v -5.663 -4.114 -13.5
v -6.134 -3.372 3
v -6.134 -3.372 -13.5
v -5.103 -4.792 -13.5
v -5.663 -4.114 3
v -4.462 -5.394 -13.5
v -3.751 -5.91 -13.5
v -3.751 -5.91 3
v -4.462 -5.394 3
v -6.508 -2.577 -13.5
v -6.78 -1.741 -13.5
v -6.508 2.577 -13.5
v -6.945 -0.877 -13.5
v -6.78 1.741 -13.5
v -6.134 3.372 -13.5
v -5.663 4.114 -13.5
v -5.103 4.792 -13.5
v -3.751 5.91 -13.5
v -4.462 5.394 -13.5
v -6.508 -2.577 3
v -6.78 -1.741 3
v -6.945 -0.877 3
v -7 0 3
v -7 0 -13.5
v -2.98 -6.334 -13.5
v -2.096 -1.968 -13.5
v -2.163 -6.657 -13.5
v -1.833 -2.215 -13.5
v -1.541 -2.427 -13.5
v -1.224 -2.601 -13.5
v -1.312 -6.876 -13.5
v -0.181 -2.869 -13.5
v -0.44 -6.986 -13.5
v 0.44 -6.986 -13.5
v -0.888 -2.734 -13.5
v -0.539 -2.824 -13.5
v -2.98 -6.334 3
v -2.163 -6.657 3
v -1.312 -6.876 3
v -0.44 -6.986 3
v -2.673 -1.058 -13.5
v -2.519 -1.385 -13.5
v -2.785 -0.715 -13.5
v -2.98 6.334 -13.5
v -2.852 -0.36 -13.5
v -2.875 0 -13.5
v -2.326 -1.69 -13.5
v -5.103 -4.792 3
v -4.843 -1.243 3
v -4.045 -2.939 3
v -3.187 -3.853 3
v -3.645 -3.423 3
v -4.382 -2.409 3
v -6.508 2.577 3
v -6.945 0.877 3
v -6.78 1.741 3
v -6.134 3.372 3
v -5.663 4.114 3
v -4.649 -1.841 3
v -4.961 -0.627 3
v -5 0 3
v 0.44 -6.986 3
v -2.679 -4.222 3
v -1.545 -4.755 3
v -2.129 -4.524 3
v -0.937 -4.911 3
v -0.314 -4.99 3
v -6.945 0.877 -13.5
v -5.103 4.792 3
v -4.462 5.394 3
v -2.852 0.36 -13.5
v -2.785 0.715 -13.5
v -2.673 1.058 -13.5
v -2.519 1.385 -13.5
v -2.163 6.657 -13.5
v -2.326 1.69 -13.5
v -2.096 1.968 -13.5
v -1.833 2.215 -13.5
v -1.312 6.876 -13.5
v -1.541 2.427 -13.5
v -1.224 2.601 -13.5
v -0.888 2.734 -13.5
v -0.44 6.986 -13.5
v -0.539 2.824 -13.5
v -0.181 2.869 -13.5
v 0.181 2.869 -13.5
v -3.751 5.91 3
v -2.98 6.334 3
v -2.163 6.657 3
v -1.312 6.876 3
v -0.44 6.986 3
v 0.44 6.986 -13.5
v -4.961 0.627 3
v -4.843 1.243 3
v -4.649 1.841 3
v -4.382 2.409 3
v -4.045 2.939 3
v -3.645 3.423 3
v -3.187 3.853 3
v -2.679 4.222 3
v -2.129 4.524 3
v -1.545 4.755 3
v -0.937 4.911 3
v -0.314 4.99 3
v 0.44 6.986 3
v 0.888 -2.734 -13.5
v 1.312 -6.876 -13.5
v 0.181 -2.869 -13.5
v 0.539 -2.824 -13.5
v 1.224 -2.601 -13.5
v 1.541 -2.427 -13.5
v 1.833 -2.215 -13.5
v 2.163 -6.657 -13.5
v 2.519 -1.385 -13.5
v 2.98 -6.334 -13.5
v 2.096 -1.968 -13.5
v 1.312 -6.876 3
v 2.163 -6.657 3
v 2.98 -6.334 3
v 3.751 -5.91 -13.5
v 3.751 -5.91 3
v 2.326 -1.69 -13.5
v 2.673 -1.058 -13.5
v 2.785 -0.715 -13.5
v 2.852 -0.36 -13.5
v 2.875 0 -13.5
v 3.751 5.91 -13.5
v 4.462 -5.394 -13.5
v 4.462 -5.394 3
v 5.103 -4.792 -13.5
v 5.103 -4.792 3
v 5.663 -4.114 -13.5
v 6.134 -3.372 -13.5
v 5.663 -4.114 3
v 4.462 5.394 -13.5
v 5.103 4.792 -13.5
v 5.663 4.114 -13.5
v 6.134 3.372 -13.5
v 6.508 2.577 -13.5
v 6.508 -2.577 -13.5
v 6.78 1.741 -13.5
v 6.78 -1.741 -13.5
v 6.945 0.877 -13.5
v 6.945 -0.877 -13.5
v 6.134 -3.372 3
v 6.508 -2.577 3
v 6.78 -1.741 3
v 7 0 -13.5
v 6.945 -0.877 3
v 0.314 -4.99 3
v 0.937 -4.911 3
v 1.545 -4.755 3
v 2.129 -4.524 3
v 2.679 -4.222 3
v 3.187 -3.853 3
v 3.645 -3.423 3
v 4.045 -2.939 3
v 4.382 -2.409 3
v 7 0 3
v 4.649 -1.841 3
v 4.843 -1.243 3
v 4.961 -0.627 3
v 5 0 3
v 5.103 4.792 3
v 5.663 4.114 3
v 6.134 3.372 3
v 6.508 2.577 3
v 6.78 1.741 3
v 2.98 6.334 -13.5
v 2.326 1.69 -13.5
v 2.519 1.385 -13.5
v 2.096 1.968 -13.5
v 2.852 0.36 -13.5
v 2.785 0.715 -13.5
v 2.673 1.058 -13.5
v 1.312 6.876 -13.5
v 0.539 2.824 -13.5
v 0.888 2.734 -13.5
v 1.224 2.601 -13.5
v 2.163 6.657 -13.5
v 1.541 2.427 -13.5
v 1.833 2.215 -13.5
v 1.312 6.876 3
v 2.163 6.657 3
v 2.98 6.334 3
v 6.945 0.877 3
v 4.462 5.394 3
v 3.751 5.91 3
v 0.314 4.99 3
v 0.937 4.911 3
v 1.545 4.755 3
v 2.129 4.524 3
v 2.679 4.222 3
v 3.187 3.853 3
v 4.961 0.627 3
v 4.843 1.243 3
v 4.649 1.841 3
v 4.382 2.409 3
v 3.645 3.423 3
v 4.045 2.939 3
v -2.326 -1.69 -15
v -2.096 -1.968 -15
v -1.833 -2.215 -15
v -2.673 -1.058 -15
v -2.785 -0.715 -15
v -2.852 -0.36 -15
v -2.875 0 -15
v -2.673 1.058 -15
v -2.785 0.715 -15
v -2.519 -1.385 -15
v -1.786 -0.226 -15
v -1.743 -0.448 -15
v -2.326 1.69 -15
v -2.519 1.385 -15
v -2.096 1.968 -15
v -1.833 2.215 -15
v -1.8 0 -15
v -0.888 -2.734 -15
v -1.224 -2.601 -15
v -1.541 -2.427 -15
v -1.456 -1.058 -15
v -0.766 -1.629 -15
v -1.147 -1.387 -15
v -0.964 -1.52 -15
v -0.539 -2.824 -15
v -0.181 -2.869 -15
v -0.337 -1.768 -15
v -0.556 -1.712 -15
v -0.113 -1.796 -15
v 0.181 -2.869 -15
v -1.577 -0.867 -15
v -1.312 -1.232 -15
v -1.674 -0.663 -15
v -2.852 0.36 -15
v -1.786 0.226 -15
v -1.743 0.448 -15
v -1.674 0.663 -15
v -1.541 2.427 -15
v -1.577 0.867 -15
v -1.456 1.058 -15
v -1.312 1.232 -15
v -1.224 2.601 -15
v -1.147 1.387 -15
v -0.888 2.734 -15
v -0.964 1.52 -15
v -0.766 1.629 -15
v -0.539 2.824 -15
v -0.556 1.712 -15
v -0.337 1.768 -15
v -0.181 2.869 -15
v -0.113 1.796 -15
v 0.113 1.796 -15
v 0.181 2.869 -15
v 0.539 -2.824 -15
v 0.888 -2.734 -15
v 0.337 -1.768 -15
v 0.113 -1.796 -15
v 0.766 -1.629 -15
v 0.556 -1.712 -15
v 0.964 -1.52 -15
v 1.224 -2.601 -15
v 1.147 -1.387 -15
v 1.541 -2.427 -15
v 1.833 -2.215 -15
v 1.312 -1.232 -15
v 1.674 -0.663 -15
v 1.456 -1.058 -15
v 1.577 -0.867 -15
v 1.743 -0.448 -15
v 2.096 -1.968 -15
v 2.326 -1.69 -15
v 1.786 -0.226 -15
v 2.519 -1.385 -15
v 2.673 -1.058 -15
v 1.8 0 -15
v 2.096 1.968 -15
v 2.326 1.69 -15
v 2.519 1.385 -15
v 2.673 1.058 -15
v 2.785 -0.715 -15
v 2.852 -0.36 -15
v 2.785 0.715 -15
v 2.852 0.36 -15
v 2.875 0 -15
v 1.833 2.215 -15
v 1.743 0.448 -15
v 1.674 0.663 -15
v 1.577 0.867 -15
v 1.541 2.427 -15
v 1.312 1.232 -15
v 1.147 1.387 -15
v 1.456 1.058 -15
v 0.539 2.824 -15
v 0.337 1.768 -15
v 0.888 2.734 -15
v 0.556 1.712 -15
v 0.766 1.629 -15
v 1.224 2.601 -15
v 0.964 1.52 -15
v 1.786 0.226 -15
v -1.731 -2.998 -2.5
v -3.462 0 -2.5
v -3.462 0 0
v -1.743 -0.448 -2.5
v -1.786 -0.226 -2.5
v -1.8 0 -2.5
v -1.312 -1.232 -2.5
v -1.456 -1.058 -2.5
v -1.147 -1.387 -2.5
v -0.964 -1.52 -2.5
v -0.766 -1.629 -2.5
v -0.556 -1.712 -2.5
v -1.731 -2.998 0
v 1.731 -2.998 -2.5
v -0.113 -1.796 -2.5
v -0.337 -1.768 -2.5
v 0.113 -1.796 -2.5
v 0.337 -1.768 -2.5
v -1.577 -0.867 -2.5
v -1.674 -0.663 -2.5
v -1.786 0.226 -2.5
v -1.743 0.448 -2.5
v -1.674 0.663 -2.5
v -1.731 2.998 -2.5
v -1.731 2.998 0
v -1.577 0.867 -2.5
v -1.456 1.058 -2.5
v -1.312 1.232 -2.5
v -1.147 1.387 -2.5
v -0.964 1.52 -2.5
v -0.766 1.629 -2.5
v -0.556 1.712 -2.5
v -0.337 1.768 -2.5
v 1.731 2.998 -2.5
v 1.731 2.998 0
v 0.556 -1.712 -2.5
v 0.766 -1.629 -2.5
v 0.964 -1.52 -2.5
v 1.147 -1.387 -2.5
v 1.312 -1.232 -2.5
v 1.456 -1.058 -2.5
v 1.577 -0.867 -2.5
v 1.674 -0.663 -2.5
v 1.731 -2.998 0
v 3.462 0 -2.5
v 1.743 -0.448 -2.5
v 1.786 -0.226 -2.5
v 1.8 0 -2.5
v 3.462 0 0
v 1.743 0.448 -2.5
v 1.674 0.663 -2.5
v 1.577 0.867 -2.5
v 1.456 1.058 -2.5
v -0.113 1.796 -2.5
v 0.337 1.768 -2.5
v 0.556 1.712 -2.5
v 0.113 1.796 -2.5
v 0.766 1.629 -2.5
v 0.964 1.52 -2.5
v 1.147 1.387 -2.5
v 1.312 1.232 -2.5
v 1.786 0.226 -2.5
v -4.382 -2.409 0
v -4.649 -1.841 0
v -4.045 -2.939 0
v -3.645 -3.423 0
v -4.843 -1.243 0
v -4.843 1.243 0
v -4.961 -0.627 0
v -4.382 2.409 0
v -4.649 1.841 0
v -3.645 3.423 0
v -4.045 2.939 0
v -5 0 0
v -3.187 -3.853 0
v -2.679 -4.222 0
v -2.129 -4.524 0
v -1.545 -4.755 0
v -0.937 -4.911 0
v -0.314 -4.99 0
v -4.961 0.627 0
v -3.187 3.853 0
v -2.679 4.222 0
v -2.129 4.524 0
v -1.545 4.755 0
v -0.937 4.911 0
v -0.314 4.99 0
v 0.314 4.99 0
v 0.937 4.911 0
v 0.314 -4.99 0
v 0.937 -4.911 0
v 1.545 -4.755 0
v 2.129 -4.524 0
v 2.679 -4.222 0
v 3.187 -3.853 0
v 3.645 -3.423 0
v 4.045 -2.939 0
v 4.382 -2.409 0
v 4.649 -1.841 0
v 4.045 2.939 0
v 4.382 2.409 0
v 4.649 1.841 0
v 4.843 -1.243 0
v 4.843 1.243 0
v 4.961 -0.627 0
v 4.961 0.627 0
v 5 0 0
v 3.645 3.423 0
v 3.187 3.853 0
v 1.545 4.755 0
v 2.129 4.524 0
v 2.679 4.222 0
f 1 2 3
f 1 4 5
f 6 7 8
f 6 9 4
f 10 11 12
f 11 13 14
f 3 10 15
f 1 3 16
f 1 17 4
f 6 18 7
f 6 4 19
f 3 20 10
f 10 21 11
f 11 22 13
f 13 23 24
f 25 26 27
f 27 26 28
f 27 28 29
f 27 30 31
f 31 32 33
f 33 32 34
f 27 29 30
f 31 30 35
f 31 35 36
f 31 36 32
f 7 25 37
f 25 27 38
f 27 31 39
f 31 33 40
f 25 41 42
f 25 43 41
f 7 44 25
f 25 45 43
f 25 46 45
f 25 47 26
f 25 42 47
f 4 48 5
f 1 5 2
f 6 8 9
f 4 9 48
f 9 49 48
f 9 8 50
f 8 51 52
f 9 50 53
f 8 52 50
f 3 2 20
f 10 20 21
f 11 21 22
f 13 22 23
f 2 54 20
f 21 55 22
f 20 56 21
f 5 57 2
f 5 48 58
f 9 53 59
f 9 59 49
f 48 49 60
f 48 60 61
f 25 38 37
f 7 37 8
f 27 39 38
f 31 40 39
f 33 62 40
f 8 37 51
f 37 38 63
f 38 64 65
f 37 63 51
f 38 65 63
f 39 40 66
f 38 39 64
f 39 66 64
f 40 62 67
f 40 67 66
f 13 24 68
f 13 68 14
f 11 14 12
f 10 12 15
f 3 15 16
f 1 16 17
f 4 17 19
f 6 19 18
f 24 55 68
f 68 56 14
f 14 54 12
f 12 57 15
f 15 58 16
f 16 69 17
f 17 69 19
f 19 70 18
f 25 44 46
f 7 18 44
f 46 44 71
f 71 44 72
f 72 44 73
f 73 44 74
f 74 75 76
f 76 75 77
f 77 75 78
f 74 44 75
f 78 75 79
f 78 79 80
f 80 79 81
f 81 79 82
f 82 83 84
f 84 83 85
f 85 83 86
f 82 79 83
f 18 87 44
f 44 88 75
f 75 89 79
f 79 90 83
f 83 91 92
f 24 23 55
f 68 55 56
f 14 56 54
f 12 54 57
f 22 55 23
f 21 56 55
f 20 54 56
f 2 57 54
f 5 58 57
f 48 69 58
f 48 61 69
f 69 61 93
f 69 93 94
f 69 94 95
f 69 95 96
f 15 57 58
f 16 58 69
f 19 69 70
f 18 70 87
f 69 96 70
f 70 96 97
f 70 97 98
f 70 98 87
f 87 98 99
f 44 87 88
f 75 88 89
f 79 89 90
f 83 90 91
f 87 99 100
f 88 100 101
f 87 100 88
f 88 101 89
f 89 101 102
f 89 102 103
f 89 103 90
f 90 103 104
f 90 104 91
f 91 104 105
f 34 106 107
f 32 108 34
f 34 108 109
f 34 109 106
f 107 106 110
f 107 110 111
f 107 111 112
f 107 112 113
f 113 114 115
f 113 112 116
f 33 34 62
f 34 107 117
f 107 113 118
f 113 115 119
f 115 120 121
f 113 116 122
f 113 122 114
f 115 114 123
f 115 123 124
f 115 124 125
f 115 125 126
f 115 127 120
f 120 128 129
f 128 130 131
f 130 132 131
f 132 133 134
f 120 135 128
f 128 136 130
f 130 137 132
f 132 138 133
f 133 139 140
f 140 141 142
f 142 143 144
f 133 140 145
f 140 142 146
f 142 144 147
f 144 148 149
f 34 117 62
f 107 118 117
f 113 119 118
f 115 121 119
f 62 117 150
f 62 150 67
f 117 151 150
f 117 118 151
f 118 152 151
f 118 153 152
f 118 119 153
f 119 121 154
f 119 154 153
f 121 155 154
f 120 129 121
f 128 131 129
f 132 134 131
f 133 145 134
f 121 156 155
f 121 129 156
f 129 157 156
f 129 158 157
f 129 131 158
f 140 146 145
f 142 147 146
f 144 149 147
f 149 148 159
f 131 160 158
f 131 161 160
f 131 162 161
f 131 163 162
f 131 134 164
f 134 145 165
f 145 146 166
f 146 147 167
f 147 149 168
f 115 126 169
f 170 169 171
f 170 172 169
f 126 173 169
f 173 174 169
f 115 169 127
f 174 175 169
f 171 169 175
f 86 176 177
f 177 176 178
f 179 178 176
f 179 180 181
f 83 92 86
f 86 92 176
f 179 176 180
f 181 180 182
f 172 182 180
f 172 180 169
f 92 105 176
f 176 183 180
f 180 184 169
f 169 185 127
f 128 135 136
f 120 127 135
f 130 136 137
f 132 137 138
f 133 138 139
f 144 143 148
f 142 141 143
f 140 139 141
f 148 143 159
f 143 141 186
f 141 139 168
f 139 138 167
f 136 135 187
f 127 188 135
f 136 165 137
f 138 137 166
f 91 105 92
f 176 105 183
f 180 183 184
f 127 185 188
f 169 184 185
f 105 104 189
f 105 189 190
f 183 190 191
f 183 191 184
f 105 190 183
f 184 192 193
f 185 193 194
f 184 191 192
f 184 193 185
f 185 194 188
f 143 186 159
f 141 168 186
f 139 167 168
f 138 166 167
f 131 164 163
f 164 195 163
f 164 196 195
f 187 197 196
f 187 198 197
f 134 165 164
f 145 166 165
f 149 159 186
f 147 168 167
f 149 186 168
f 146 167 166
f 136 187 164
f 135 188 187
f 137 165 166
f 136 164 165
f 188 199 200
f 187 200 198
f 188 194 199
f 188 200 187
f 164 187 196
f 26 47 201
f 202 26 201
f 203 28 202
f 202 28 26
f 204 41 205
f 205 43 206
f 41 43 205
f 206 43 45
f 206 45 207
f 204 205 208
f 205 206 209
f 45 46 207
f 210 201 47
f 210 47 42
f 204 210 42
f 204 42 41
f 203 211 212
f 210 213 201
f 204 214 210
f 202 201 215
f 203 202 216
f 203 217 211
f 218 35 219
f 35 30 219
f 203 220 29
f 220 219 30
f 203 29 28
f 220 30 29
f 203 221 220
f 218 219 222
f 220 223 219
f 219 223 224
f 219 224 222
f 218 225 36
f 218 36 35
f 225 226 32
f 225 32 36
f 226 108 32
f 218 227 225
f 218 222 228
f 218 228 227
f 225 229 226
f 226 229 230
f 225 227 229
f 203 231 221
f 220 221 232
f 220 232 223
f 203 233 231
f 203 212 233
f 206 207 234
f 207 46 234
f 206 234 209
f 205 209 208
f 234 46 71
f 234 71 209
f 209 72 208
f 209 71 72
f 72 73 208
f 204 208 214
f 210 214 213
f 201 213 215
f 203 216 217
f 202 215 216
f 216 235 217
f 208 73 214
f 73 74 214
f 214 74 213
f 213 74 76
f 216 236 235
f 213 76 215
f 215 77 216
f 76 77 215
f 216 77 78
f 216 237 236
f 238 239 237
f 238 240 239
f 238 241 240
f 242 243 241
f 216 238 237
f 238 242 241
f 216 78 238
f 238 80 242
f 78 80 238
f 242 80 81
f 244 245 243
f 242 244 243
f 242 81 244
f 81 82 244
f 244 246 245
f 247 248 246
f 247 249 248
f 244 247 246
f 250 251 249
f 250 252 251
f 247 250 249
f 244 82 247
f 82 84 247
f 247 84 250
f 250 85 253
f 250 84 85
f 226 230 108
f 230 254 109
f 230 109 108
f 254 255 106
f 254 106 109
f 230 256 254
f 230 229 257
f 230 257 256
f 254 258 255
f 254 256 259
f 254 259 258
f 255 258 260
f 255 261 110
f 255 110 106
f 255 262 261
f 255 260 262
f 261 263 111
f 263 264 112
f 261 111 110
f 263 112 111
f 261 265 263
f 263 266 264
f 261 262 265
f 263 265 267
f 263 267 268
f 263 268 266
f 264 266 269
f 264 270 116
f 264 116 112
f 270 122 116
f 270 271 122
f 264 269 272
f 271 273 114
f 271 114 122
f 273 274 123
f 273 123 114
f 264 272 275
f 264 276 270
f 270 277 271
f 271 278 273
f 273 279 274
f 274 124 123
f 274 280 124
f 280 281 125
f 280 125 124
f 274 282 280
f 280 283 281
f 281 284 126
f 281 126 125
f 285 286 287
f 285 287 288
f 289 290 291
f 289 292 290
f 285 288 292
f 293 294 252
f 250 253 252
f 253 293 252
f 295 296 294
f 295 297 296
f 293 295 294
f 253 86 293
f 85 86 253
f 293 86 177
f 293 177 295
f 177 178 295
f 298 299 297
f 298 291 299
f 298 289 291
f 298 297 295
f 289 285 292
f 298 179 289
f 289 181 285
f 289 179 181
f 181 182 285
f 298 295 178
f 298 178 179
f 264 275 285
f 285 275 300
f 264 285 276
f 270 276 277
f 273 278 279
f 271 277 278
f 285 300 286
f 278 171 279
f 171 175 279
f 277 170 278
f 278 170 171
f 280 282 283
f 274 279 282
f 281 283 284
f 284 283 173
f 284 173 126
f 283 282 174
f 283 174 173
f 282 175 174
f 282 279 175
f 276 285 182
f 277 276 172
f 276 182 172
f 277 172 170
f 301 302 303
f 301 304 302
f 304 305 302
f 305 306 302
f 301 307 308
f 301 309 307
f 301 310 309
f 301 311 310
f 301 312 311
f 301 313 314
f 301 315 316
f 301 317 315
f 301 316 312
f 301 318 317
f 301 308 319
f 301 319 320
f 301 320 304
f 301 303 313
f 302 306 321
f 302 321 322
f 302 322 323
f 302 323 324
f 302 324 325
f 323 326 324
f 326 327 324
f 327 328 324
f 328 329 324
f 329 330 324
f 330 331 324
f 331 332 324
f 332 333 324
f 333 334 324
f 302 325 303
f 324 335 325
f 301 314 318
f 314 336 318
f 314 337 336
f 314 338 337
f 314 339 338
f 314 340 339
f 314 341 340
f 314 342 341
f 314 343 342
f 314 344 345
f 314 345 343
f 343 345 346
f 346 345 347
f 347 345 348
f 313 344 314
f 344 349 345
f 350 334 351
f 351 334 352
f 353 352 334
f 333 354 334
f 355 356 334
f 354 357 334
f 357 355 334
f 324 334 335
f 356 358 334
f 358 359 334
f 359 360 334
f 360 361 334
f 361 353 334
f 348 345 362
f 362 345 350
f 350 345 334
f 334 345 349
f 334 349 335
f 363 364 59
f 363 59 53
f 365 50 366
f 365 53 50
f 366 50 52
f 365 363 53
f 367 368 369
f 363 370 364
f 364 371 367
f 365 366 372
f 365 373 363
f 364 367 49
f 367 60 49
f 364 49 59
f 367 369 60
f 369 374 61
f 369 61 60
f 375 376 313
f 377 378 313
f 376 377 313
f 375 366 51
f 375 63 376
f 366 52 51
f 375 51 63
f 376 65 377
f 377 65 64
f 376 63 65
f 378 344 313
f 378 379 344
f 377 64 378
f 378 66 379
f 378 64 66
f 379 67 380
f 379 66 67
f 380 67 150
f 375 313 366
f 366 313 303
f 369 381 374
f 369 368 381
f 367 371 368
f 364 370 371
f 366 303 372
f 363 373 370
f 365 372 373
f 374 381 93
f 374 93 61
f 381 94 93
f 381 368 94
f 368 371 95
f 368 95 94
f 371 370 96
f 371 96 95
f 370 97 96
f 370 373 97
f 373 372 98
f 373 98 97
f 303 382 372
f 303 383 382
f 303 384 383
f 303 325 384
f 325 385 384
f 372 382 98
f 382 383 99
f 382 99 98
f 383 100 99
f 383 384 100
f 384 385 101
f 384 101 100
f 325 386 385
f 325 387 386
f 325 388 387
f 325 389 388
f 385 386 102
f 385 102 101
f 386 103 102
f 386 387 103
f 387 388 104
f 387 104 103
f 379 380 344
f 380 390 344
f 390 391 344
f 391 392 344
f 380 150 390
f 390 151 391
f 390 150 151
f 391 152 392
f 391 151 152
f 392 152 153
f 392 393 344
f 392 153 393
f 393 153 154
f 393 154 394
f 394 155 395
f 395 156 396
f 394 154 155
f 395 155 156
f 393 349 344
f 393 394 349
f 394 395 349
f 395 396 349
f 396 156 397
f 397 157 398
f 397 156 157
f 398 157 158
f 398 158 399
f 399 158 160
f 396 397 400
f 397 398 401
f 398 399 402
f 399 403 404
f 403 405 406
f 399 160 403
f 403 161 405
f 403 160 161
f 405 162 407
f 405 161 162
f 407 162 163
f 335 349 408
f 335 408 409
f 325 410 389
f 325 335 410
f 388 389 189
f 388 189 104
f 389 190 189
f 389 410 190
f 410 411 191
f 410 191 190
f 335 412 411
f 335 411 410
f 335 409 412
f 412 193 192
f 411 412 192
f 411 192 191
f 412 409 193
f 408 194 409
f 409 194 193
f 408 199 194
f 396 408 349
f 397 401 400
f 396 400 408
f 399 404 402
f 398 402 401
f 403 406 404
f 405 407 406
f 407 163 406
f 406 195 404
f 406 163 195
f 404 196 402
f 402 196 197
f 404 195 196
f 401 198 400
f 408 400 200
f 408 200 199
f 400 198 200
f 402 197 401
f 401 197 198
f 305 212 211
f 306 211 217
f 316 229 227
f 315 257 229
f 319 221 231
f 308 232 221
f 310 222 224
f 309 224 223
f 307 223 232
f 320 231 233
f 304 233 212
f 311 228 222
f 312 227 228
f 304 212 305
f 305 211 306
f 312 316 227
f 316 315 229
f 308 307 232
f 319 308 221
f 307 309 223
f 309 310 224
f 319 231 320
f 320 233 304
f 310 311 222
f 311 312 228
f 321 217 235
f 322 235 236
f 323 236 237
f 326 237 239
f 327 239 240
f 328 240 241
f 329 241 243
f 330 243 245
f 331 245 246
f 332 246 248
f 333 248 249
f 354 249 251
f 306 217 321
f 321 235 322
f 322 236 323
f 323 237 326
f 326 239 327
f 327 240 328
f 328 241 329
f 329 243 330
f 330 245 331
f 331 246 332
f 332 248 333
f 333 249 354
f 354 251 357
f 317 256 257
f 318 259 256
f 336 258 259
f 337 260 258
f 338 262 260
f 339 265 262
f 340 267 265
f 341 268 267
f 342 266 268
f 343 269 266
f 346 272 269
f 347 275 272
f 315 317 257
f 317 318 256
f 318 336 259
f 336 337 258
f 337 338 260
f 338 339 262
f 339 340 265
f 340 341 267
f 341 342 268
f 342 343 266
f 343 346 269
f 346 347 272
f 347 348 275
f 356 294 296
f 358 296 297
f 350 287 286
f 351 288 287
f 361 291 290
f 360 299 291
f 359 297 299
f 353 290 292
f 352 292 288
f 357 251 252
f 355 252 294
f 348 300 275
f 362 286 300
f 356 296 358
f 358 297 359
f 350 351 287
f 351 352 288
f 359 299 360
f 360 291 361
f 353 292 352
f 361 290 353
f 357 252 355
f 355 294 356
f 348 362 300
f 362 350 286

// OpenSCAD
$fn = 50;


difference() {
	union() {
		translate(v = [0, 0, -13.5000000000]) {
			cylinder(h = 16.5000000000, r = 7.0000000000);
		}
		#translate(v = [0, 0, -15.0000000000]) {
			cylinder(h = 15, r = 2.8750000000);
		}
	}
	union() {
		translate(v = [0, 0, 0]) {
			rotate(a = [0, 0, 0]) {
				difference() {
					union() {
						translate(v = [0, 0, -2.5000000000]) {
							linear_extrude(height = 2.5000000000) {
								polygon(points = [[3.4620000000, 0.0000000000], [1.7310000000, 2.9981799479], [-1.7310000000, 2.9981799479], [-3.4620000000, 0.0000000000], [-1.7310000000, -2.9981799479], [1.7310000000, -2.9981799479]]);
							}
						}
					}
					union();
				}
			}
		}
		#cylinder(h = 3, r = 5.0000000000);
		#translate(v = [0, 0, -100.0000000000]) {
			cylinder(h = 200, r = 1.8000000000);
		}
	}
}
